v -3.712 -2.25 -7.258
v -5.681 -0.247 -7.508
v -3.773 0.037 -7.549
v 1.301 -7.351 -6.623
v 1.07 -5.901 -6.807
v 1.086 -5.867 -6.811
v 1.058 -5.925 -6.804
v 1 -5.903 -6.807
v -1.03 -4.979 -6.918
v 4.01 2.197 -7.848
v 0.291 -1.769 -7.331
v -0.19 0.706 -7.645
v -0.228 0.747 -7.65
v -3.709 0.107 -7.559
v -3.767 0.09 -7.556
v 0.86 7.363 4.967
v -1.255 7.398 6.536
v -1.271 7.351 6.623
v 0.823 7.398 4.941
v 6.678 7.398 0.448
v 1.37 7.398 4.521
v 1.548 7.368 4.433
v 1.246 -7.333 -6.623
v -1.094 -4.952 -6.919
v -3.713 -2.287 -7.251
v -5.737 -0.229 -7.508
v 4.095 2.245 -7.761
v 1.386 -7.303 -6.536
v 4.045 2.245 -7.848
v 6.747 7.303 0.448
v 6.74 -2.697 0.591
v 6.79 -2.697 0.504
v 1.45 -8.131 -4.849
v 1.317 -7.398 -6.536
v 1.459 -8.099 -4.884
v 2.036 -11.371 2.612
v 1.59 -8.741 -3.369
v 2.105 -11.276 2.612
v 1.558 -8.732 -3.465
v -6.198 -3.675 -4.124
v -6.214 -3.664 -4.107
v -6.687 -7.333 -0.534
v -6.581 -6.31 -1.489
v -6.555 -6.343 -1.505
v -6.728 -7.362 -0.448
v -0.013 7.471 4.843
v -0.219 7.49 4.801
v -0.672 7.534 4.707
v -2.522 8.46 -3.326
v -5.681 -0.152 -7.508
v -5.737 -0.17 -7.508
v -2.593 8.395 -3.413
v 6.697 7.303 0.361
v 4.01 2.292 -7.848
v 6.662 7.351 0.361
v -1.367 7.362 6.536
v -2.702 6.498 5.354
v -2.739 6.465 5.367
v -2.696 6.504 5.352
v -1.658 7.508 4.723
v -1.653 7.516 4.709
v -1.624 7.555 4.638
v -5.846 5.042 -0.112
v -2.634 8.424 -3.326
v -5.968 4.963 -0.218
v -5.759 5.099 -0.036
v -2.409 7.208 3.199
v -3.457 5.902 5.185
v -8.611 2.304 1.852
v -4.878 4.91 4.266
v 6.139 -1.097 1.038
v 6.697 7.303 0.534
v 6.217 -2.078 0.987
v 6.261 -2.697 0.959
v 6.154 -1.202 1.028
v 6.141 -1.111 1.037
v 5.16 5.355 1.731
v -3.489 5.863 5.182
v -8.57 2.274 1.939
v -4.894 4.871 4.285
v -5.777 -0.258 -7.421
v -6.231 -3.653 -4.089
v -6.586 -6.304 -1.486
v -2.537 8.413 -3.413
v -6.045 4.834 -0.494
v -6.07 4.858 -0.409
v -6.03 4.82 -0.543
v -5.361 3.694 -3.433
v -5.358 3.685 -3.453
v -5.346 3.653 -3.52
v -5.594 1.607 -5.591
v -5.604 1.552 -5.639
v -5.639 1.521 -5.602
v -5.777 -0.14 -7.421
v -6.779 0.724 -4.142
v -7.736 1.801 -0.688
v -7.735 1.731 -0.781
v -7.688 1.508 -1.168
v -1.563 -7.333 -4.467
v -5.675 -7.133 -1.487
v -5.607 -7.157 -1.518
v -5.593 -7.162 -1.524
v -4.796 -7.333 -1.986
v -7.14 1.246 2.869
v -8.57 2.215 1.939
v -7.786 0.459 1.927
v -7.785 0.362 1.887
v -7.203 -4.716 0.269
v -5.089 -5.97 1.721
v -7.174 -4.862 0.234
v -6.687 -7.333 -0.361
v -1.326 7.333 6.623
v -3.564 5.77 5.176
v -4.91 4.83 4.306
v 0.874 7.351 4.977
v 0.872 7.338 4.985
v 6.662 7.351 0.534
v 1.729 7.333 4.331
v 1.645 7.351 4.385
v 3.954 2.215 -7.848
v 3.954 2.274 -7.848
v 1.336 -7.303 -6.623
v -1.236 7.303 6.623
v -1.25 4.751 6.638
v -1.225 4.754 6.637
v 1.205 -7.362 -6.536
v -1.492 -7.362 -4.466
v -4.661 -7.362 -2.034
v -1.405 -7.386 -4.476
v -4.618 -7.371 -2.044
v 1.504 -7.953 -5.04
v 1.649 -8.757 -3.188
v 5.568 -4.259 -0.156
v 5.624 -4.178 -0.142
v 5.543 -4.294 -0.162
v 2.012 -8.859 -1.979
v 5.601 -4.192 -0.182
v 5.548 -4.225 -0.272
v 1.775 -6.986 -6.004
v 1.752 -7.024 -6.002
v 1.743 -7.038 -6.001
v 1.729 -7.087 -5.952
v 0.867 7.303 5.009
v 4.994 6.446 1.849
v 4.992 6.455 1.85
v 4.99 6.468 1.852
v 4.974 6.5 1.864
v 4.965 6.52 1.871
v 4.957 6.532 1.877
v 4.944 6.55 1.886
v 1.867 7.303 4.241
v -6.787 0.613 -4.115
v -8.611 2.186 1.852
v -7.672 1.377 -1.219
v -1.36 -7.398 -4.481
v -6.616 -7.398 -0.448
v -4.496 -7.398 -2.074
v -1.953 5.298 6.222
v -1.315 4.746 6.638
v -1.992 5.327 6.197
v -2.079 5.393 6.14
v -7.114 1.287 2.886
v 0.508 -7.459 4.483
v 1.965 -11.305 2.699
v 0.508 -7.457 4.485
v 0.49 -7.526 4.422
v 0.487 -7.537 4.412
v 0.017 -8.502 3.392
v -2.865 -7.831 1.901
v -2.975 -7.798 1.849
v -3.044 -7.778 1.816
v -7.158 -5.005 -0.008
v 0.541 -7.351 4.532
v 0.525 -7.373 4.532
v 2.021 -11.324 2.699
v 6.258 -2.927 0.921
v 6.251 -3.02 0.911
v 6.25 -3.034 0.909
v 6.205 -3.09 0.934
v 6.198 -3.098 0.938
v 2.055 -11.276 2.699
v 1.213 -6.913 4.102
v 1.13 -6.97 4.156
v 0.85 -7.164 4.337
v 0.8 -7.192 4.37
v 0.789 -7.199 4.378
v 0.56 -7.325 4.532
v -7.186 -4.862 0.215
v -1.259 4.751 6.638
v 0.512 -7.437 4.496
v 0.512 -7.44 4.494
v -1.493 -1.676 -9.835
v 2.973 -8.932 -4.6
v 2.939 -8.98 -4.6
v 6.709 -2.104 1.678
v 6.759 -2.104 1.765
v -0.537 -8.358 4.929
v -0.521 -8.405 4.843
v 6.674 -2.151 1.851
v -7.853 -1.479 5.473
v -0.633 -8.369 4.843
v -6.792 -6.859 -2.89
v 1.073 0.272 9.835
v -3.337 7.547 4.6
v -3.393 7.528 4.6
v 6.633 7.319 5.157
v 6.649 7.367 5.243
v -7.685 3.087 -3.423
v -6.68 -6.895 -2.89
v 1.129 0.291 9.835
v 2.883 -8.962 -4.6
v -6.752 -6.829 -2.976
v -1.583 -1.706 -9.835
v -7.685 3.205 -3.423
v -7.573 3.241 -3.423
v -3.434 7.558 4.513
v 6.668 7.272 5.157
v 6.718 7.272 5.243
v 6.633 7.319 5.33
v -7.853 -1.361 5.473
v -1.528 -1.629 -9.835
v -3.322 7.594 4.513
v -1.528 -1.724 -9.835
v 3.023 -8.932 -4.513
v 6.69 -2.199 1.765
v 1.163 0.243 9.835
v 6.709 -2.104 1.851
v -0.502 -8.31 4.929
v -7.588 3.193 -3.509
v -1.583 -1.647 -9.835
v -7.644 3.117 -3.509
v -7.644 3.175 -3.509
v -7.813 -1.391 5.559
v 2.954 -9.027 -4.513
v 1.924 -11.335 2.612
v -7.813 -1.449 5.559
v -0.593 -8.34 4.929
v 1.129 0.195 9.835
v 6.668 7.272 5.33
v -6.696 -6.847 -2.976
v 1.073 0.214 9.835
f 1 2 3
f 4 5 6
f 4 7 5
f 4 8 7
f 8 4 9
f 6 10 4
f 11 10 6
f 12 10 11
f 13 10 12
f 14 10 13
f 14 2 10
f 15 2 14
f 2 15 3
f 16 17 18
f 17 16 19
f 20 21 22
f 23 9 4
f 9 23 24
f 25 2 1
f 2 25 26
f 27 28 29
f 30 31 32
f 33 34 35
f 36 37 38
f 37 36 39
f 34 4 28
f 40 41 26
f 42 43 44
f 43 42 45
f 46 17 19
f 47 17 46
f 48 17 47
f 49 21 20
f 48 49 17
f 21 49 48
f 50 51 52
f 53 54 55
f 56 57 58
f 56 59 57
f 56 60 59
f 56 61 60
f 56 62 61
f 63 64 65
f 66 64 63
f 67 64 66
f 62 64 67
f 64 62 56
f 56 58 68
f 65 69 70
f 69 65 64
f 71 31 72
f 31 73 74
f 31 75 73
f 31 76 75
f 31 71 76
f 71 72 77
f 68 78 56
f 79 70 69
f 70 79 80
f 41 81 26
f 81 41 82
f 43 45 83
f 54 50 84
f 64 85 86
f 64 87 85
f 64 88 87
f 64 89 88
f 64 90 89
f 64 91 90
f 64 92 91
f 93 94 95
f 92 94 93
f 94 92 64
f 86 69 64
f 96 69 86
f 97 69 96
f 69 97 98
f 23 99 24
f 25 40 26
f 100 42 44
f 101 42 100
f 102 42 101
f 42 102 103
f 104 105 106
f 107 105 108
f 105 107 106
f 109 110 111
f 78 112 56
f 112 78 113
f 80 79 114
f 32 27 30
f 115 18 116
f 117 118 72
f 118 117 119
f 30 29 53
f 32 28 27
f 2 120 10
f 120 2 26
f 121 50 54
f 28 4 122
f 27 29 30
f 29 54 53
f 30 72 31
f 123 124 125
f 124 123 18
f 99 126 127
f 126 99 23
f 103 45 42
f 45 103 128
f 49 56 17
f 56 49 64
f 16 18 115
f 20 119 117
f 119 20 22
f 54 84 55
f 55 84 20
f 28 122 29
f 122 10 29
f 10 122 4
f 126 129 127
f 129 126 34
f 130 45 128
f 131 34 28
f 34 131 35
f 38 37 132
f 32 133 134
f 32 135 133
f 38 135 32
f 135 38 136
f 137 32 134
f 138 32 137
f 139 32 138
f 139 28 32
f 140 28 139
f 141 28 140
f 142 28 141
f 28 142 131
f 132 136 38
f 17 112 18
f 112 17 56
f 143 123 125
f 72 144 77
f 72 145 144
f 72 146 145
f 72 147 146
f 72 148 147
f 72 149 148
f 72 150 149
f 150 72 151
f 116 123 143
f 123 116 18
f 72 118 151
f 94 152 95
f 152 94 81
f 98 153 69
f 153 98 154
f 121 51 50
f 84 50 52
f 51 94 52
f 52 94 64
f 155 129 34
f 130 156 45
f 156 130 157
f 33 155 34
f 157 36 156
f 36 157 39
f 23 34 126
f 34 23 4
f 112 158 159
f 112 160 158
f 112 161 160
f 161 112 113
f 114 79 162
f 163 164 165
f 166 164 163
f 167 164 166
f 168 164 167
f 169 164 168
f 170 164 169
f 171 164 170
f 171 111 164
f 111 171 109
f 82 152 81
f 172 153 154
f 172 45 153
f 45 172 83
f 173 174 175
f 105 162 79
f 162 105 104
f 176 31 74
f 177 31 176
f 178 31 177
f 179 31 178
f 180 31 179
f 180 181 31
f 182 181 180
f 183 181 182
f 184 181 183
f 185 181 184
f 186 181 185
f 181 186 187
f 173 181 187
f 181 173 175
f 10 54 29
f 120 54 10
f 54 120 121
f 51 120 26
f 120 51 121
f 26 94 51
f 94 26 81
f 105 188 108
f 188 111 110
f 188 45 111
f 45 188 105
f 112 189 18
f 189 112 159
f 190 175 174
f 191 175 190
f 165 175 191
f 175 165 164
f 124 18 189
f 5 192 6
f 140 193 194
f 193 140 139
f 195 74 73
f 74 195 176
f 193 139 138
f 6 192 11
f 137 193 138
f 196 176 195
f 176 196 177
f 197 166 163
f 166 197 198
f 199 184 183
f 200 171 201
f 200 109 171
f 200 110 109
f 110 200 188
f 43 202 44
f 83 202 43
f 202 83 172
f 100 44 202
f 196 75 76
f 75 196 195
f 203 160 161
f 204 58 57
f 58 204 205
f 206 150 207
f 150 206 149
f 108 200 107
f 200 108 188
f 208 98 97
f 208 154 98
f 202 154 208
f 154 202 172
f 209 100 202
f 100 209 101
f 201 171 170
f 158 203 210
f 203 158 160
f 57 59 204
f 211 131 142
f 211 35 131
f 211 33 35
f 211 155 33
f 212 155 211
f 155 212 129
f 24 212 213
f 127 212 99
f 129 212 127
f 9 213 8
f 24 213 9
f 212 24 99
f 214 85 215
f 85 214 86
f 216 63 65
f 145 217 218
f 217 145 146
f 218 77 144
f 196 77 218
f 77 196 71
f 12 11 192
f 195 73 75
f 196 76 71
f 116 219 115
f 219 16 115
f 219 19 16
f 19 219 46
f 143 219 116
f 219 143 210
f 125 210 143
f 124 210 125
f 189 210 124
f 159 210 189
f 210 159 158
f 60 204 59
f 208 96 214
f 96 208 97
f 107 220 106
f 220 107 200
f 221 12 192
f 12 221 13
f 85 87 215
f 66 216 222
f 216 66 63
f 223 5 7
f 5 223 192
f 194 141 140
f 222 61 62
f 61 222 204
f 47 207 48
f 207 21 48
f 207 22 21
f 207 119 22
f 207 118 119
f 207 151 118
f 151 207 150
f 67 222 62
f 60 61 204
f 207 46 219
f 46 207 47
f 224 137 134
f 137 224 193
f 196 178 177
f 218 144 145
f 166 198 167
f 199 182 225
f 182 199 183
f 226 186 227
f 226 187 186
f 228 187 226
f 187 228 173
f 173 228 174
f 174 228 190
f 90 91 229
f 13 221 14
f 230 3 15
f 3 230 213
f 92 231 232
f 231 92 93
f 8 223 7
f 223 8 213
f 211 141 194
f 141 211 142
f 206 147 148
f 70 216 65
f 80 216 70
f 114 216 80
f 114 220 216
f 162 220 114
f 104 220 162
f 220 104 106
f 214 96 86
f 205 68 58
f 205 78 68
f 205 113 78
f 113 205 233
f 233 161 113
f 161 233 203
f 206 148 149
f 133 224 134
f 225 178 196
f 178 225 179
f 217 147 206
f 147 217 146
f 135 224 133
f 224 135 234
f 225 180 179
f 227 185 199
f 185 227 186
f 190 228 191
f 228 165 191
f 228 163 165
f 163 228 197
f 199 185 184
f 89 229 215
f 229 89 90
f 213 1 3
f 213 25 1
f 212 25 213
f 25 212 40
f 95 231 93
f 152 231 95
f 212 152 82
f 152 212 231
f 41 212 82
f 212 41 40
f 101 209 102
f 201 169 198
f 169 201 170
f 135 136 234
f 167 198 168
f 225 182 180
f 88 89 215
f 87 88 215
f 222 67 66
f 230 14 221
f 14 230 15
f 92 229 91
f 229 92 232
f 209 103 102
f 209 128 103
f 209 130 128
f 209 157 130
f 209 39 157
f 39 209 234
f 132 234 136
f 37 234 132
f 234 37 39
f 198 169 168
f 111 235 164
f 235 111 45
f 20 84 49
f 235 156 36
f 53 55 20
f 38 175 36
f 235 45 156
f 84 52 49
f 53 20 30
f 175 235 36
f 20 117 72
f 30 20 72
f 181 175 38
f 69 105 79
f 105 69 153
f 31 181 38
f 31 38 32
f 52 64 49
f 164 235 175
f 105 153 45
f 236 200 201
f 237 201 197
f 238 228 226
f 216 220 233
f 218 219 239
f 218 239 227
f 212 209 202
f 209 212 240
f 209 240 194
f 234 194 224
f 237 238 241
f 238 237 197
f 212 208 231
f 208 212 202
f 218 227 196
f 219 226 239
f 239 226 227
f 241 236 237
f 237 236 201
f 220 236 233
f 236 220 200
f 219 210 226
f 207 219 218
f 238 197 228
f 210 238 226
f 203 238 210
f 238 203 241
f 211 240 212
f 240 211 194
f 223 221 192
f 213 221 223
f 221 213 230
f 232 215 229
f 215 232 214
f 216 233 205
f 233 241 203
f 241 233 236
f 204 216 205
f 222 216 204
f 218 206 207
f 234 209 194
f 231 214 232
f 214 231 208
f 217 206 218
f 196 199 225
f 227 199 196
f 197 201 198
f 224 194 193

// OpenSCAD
// Auto-generated OpenSCAD file

    inner_points = 10*[[-0.33527340439148867, 0.7498997662519438, 0.4513456021203321], [-0.15430438504244254, -0.1676220498145088, -0.9748300137498693], [0.11133893181382774, 0.024295540843831454, 0.9748300137498693], [0.2923079511628739, -0.8932262752226212, -0.4513456021203321], [-0.7603709966932597, 0.3145903298228517, -0.3422523638391476], [-0.055234763477199314, -0.8310337132952008, 0.4842537494941892], [0.21927979692174981, 0.5152429571411032, -0.3470320834716172], [0.6658921331270662, -0.21036126826700907, 0.17645232815792009], [-0.7772187463952425, -0.14199914567561245, 0.54726559786484], [-0.6711068070064338, -0.679991889873274, -0.28897842364432175], [0.661801140766184, 0.7271720747422719, 0.5243237045707335]];

    outer_points = 10*[[-0.6646630702233576, -0.7303166978819896, -0.04476341064086725], [-0.12860392172681917, 0.7303166978819896, 0.6536373544767964], [0.12860392172681917, -0.7303166978819896, -0.6536373544767964], [0.6646630702233576, 0.7303166978819896, 0.04476341064086725], [-0.8529840806486279, 0.22448007402066417, 0.18523294019252518], [0.39946967687864576, 0.22448007402066417, -0.7760908846435595], [-0.12424046378929937, -0.2696576228647949, 0.6593222539336372], [0.6690265281608774, -0.2696576228647949, 0.05044831009770817], [-0.5696102969148841, -0.01991608581139187, -0.7421126349582734], [-0.2552897790787969, 0.8365323986755415, -0.33260243302517273], [0.20051337790222834, -1.1275989896931966, 0.26123739691040415]];

    // Convex hull for inner set (I)
    module inner_hull() {
        hull() {
            for (p = inner_points) {
                translate(p) sphere(r=0.1);
            }
        }
    }

    // Convex hull for outer set (O) minus inner hull (O \ I)
    module outer_minus_inner() {
        difference() {
            hull() {
                for (p = outer_points) {
                    translate(p) sphere(r=0.1);
                }
            }
            inner_hull(); // Subtract inner hull
        }
    }

    // Convex hull for outer set (O) minus all translated inner hulls
    module outer_minus_AllTranslationInner() {
        difference() {
            hull() {
                for (p = outer_points) {
                    translate(p) sphere(r=0.1);
                }
            }
            hull() {
                translate([0,0,50]) inner_hull();
                translate([0,0,-50]) inner_hull();
            }; // Subtract translated inner hulls
        }
    }

    // Difference between outer_minus_inner and outer_minus_AllTranslationInner
    module outer_minus_inner_diff() {
        difference() {
            // Outer minus inner
            difference() {
                hull() {
                    for (p = outer_points) {
                        translate(p) sphere(r=0.1);
                    }
                }
                inner_hull();
            }

            // Subtract Outer minus AllTranslationInner
            difference() {
                hull() {
                    for (p = outer_points) {
                        translate(p) sphere(r=0.1);
                    }
                }
                hull() {
                    translate([0,0,50]) inner_hull();
                    translate([0,0,-50]) inner_hull();
                };
            }
        }
    }

    // Rendering all with colors applied
    color([1, 0, 0, 0.5]) inner_hull(); // Transparent red
    color([0, 1, 0, 1]) outer_minus_AllTranslationInner(); // Opaque green
    color([1, 1, 0, 1]) outer_minus_inner_diff(); // Opaque yellow
    
